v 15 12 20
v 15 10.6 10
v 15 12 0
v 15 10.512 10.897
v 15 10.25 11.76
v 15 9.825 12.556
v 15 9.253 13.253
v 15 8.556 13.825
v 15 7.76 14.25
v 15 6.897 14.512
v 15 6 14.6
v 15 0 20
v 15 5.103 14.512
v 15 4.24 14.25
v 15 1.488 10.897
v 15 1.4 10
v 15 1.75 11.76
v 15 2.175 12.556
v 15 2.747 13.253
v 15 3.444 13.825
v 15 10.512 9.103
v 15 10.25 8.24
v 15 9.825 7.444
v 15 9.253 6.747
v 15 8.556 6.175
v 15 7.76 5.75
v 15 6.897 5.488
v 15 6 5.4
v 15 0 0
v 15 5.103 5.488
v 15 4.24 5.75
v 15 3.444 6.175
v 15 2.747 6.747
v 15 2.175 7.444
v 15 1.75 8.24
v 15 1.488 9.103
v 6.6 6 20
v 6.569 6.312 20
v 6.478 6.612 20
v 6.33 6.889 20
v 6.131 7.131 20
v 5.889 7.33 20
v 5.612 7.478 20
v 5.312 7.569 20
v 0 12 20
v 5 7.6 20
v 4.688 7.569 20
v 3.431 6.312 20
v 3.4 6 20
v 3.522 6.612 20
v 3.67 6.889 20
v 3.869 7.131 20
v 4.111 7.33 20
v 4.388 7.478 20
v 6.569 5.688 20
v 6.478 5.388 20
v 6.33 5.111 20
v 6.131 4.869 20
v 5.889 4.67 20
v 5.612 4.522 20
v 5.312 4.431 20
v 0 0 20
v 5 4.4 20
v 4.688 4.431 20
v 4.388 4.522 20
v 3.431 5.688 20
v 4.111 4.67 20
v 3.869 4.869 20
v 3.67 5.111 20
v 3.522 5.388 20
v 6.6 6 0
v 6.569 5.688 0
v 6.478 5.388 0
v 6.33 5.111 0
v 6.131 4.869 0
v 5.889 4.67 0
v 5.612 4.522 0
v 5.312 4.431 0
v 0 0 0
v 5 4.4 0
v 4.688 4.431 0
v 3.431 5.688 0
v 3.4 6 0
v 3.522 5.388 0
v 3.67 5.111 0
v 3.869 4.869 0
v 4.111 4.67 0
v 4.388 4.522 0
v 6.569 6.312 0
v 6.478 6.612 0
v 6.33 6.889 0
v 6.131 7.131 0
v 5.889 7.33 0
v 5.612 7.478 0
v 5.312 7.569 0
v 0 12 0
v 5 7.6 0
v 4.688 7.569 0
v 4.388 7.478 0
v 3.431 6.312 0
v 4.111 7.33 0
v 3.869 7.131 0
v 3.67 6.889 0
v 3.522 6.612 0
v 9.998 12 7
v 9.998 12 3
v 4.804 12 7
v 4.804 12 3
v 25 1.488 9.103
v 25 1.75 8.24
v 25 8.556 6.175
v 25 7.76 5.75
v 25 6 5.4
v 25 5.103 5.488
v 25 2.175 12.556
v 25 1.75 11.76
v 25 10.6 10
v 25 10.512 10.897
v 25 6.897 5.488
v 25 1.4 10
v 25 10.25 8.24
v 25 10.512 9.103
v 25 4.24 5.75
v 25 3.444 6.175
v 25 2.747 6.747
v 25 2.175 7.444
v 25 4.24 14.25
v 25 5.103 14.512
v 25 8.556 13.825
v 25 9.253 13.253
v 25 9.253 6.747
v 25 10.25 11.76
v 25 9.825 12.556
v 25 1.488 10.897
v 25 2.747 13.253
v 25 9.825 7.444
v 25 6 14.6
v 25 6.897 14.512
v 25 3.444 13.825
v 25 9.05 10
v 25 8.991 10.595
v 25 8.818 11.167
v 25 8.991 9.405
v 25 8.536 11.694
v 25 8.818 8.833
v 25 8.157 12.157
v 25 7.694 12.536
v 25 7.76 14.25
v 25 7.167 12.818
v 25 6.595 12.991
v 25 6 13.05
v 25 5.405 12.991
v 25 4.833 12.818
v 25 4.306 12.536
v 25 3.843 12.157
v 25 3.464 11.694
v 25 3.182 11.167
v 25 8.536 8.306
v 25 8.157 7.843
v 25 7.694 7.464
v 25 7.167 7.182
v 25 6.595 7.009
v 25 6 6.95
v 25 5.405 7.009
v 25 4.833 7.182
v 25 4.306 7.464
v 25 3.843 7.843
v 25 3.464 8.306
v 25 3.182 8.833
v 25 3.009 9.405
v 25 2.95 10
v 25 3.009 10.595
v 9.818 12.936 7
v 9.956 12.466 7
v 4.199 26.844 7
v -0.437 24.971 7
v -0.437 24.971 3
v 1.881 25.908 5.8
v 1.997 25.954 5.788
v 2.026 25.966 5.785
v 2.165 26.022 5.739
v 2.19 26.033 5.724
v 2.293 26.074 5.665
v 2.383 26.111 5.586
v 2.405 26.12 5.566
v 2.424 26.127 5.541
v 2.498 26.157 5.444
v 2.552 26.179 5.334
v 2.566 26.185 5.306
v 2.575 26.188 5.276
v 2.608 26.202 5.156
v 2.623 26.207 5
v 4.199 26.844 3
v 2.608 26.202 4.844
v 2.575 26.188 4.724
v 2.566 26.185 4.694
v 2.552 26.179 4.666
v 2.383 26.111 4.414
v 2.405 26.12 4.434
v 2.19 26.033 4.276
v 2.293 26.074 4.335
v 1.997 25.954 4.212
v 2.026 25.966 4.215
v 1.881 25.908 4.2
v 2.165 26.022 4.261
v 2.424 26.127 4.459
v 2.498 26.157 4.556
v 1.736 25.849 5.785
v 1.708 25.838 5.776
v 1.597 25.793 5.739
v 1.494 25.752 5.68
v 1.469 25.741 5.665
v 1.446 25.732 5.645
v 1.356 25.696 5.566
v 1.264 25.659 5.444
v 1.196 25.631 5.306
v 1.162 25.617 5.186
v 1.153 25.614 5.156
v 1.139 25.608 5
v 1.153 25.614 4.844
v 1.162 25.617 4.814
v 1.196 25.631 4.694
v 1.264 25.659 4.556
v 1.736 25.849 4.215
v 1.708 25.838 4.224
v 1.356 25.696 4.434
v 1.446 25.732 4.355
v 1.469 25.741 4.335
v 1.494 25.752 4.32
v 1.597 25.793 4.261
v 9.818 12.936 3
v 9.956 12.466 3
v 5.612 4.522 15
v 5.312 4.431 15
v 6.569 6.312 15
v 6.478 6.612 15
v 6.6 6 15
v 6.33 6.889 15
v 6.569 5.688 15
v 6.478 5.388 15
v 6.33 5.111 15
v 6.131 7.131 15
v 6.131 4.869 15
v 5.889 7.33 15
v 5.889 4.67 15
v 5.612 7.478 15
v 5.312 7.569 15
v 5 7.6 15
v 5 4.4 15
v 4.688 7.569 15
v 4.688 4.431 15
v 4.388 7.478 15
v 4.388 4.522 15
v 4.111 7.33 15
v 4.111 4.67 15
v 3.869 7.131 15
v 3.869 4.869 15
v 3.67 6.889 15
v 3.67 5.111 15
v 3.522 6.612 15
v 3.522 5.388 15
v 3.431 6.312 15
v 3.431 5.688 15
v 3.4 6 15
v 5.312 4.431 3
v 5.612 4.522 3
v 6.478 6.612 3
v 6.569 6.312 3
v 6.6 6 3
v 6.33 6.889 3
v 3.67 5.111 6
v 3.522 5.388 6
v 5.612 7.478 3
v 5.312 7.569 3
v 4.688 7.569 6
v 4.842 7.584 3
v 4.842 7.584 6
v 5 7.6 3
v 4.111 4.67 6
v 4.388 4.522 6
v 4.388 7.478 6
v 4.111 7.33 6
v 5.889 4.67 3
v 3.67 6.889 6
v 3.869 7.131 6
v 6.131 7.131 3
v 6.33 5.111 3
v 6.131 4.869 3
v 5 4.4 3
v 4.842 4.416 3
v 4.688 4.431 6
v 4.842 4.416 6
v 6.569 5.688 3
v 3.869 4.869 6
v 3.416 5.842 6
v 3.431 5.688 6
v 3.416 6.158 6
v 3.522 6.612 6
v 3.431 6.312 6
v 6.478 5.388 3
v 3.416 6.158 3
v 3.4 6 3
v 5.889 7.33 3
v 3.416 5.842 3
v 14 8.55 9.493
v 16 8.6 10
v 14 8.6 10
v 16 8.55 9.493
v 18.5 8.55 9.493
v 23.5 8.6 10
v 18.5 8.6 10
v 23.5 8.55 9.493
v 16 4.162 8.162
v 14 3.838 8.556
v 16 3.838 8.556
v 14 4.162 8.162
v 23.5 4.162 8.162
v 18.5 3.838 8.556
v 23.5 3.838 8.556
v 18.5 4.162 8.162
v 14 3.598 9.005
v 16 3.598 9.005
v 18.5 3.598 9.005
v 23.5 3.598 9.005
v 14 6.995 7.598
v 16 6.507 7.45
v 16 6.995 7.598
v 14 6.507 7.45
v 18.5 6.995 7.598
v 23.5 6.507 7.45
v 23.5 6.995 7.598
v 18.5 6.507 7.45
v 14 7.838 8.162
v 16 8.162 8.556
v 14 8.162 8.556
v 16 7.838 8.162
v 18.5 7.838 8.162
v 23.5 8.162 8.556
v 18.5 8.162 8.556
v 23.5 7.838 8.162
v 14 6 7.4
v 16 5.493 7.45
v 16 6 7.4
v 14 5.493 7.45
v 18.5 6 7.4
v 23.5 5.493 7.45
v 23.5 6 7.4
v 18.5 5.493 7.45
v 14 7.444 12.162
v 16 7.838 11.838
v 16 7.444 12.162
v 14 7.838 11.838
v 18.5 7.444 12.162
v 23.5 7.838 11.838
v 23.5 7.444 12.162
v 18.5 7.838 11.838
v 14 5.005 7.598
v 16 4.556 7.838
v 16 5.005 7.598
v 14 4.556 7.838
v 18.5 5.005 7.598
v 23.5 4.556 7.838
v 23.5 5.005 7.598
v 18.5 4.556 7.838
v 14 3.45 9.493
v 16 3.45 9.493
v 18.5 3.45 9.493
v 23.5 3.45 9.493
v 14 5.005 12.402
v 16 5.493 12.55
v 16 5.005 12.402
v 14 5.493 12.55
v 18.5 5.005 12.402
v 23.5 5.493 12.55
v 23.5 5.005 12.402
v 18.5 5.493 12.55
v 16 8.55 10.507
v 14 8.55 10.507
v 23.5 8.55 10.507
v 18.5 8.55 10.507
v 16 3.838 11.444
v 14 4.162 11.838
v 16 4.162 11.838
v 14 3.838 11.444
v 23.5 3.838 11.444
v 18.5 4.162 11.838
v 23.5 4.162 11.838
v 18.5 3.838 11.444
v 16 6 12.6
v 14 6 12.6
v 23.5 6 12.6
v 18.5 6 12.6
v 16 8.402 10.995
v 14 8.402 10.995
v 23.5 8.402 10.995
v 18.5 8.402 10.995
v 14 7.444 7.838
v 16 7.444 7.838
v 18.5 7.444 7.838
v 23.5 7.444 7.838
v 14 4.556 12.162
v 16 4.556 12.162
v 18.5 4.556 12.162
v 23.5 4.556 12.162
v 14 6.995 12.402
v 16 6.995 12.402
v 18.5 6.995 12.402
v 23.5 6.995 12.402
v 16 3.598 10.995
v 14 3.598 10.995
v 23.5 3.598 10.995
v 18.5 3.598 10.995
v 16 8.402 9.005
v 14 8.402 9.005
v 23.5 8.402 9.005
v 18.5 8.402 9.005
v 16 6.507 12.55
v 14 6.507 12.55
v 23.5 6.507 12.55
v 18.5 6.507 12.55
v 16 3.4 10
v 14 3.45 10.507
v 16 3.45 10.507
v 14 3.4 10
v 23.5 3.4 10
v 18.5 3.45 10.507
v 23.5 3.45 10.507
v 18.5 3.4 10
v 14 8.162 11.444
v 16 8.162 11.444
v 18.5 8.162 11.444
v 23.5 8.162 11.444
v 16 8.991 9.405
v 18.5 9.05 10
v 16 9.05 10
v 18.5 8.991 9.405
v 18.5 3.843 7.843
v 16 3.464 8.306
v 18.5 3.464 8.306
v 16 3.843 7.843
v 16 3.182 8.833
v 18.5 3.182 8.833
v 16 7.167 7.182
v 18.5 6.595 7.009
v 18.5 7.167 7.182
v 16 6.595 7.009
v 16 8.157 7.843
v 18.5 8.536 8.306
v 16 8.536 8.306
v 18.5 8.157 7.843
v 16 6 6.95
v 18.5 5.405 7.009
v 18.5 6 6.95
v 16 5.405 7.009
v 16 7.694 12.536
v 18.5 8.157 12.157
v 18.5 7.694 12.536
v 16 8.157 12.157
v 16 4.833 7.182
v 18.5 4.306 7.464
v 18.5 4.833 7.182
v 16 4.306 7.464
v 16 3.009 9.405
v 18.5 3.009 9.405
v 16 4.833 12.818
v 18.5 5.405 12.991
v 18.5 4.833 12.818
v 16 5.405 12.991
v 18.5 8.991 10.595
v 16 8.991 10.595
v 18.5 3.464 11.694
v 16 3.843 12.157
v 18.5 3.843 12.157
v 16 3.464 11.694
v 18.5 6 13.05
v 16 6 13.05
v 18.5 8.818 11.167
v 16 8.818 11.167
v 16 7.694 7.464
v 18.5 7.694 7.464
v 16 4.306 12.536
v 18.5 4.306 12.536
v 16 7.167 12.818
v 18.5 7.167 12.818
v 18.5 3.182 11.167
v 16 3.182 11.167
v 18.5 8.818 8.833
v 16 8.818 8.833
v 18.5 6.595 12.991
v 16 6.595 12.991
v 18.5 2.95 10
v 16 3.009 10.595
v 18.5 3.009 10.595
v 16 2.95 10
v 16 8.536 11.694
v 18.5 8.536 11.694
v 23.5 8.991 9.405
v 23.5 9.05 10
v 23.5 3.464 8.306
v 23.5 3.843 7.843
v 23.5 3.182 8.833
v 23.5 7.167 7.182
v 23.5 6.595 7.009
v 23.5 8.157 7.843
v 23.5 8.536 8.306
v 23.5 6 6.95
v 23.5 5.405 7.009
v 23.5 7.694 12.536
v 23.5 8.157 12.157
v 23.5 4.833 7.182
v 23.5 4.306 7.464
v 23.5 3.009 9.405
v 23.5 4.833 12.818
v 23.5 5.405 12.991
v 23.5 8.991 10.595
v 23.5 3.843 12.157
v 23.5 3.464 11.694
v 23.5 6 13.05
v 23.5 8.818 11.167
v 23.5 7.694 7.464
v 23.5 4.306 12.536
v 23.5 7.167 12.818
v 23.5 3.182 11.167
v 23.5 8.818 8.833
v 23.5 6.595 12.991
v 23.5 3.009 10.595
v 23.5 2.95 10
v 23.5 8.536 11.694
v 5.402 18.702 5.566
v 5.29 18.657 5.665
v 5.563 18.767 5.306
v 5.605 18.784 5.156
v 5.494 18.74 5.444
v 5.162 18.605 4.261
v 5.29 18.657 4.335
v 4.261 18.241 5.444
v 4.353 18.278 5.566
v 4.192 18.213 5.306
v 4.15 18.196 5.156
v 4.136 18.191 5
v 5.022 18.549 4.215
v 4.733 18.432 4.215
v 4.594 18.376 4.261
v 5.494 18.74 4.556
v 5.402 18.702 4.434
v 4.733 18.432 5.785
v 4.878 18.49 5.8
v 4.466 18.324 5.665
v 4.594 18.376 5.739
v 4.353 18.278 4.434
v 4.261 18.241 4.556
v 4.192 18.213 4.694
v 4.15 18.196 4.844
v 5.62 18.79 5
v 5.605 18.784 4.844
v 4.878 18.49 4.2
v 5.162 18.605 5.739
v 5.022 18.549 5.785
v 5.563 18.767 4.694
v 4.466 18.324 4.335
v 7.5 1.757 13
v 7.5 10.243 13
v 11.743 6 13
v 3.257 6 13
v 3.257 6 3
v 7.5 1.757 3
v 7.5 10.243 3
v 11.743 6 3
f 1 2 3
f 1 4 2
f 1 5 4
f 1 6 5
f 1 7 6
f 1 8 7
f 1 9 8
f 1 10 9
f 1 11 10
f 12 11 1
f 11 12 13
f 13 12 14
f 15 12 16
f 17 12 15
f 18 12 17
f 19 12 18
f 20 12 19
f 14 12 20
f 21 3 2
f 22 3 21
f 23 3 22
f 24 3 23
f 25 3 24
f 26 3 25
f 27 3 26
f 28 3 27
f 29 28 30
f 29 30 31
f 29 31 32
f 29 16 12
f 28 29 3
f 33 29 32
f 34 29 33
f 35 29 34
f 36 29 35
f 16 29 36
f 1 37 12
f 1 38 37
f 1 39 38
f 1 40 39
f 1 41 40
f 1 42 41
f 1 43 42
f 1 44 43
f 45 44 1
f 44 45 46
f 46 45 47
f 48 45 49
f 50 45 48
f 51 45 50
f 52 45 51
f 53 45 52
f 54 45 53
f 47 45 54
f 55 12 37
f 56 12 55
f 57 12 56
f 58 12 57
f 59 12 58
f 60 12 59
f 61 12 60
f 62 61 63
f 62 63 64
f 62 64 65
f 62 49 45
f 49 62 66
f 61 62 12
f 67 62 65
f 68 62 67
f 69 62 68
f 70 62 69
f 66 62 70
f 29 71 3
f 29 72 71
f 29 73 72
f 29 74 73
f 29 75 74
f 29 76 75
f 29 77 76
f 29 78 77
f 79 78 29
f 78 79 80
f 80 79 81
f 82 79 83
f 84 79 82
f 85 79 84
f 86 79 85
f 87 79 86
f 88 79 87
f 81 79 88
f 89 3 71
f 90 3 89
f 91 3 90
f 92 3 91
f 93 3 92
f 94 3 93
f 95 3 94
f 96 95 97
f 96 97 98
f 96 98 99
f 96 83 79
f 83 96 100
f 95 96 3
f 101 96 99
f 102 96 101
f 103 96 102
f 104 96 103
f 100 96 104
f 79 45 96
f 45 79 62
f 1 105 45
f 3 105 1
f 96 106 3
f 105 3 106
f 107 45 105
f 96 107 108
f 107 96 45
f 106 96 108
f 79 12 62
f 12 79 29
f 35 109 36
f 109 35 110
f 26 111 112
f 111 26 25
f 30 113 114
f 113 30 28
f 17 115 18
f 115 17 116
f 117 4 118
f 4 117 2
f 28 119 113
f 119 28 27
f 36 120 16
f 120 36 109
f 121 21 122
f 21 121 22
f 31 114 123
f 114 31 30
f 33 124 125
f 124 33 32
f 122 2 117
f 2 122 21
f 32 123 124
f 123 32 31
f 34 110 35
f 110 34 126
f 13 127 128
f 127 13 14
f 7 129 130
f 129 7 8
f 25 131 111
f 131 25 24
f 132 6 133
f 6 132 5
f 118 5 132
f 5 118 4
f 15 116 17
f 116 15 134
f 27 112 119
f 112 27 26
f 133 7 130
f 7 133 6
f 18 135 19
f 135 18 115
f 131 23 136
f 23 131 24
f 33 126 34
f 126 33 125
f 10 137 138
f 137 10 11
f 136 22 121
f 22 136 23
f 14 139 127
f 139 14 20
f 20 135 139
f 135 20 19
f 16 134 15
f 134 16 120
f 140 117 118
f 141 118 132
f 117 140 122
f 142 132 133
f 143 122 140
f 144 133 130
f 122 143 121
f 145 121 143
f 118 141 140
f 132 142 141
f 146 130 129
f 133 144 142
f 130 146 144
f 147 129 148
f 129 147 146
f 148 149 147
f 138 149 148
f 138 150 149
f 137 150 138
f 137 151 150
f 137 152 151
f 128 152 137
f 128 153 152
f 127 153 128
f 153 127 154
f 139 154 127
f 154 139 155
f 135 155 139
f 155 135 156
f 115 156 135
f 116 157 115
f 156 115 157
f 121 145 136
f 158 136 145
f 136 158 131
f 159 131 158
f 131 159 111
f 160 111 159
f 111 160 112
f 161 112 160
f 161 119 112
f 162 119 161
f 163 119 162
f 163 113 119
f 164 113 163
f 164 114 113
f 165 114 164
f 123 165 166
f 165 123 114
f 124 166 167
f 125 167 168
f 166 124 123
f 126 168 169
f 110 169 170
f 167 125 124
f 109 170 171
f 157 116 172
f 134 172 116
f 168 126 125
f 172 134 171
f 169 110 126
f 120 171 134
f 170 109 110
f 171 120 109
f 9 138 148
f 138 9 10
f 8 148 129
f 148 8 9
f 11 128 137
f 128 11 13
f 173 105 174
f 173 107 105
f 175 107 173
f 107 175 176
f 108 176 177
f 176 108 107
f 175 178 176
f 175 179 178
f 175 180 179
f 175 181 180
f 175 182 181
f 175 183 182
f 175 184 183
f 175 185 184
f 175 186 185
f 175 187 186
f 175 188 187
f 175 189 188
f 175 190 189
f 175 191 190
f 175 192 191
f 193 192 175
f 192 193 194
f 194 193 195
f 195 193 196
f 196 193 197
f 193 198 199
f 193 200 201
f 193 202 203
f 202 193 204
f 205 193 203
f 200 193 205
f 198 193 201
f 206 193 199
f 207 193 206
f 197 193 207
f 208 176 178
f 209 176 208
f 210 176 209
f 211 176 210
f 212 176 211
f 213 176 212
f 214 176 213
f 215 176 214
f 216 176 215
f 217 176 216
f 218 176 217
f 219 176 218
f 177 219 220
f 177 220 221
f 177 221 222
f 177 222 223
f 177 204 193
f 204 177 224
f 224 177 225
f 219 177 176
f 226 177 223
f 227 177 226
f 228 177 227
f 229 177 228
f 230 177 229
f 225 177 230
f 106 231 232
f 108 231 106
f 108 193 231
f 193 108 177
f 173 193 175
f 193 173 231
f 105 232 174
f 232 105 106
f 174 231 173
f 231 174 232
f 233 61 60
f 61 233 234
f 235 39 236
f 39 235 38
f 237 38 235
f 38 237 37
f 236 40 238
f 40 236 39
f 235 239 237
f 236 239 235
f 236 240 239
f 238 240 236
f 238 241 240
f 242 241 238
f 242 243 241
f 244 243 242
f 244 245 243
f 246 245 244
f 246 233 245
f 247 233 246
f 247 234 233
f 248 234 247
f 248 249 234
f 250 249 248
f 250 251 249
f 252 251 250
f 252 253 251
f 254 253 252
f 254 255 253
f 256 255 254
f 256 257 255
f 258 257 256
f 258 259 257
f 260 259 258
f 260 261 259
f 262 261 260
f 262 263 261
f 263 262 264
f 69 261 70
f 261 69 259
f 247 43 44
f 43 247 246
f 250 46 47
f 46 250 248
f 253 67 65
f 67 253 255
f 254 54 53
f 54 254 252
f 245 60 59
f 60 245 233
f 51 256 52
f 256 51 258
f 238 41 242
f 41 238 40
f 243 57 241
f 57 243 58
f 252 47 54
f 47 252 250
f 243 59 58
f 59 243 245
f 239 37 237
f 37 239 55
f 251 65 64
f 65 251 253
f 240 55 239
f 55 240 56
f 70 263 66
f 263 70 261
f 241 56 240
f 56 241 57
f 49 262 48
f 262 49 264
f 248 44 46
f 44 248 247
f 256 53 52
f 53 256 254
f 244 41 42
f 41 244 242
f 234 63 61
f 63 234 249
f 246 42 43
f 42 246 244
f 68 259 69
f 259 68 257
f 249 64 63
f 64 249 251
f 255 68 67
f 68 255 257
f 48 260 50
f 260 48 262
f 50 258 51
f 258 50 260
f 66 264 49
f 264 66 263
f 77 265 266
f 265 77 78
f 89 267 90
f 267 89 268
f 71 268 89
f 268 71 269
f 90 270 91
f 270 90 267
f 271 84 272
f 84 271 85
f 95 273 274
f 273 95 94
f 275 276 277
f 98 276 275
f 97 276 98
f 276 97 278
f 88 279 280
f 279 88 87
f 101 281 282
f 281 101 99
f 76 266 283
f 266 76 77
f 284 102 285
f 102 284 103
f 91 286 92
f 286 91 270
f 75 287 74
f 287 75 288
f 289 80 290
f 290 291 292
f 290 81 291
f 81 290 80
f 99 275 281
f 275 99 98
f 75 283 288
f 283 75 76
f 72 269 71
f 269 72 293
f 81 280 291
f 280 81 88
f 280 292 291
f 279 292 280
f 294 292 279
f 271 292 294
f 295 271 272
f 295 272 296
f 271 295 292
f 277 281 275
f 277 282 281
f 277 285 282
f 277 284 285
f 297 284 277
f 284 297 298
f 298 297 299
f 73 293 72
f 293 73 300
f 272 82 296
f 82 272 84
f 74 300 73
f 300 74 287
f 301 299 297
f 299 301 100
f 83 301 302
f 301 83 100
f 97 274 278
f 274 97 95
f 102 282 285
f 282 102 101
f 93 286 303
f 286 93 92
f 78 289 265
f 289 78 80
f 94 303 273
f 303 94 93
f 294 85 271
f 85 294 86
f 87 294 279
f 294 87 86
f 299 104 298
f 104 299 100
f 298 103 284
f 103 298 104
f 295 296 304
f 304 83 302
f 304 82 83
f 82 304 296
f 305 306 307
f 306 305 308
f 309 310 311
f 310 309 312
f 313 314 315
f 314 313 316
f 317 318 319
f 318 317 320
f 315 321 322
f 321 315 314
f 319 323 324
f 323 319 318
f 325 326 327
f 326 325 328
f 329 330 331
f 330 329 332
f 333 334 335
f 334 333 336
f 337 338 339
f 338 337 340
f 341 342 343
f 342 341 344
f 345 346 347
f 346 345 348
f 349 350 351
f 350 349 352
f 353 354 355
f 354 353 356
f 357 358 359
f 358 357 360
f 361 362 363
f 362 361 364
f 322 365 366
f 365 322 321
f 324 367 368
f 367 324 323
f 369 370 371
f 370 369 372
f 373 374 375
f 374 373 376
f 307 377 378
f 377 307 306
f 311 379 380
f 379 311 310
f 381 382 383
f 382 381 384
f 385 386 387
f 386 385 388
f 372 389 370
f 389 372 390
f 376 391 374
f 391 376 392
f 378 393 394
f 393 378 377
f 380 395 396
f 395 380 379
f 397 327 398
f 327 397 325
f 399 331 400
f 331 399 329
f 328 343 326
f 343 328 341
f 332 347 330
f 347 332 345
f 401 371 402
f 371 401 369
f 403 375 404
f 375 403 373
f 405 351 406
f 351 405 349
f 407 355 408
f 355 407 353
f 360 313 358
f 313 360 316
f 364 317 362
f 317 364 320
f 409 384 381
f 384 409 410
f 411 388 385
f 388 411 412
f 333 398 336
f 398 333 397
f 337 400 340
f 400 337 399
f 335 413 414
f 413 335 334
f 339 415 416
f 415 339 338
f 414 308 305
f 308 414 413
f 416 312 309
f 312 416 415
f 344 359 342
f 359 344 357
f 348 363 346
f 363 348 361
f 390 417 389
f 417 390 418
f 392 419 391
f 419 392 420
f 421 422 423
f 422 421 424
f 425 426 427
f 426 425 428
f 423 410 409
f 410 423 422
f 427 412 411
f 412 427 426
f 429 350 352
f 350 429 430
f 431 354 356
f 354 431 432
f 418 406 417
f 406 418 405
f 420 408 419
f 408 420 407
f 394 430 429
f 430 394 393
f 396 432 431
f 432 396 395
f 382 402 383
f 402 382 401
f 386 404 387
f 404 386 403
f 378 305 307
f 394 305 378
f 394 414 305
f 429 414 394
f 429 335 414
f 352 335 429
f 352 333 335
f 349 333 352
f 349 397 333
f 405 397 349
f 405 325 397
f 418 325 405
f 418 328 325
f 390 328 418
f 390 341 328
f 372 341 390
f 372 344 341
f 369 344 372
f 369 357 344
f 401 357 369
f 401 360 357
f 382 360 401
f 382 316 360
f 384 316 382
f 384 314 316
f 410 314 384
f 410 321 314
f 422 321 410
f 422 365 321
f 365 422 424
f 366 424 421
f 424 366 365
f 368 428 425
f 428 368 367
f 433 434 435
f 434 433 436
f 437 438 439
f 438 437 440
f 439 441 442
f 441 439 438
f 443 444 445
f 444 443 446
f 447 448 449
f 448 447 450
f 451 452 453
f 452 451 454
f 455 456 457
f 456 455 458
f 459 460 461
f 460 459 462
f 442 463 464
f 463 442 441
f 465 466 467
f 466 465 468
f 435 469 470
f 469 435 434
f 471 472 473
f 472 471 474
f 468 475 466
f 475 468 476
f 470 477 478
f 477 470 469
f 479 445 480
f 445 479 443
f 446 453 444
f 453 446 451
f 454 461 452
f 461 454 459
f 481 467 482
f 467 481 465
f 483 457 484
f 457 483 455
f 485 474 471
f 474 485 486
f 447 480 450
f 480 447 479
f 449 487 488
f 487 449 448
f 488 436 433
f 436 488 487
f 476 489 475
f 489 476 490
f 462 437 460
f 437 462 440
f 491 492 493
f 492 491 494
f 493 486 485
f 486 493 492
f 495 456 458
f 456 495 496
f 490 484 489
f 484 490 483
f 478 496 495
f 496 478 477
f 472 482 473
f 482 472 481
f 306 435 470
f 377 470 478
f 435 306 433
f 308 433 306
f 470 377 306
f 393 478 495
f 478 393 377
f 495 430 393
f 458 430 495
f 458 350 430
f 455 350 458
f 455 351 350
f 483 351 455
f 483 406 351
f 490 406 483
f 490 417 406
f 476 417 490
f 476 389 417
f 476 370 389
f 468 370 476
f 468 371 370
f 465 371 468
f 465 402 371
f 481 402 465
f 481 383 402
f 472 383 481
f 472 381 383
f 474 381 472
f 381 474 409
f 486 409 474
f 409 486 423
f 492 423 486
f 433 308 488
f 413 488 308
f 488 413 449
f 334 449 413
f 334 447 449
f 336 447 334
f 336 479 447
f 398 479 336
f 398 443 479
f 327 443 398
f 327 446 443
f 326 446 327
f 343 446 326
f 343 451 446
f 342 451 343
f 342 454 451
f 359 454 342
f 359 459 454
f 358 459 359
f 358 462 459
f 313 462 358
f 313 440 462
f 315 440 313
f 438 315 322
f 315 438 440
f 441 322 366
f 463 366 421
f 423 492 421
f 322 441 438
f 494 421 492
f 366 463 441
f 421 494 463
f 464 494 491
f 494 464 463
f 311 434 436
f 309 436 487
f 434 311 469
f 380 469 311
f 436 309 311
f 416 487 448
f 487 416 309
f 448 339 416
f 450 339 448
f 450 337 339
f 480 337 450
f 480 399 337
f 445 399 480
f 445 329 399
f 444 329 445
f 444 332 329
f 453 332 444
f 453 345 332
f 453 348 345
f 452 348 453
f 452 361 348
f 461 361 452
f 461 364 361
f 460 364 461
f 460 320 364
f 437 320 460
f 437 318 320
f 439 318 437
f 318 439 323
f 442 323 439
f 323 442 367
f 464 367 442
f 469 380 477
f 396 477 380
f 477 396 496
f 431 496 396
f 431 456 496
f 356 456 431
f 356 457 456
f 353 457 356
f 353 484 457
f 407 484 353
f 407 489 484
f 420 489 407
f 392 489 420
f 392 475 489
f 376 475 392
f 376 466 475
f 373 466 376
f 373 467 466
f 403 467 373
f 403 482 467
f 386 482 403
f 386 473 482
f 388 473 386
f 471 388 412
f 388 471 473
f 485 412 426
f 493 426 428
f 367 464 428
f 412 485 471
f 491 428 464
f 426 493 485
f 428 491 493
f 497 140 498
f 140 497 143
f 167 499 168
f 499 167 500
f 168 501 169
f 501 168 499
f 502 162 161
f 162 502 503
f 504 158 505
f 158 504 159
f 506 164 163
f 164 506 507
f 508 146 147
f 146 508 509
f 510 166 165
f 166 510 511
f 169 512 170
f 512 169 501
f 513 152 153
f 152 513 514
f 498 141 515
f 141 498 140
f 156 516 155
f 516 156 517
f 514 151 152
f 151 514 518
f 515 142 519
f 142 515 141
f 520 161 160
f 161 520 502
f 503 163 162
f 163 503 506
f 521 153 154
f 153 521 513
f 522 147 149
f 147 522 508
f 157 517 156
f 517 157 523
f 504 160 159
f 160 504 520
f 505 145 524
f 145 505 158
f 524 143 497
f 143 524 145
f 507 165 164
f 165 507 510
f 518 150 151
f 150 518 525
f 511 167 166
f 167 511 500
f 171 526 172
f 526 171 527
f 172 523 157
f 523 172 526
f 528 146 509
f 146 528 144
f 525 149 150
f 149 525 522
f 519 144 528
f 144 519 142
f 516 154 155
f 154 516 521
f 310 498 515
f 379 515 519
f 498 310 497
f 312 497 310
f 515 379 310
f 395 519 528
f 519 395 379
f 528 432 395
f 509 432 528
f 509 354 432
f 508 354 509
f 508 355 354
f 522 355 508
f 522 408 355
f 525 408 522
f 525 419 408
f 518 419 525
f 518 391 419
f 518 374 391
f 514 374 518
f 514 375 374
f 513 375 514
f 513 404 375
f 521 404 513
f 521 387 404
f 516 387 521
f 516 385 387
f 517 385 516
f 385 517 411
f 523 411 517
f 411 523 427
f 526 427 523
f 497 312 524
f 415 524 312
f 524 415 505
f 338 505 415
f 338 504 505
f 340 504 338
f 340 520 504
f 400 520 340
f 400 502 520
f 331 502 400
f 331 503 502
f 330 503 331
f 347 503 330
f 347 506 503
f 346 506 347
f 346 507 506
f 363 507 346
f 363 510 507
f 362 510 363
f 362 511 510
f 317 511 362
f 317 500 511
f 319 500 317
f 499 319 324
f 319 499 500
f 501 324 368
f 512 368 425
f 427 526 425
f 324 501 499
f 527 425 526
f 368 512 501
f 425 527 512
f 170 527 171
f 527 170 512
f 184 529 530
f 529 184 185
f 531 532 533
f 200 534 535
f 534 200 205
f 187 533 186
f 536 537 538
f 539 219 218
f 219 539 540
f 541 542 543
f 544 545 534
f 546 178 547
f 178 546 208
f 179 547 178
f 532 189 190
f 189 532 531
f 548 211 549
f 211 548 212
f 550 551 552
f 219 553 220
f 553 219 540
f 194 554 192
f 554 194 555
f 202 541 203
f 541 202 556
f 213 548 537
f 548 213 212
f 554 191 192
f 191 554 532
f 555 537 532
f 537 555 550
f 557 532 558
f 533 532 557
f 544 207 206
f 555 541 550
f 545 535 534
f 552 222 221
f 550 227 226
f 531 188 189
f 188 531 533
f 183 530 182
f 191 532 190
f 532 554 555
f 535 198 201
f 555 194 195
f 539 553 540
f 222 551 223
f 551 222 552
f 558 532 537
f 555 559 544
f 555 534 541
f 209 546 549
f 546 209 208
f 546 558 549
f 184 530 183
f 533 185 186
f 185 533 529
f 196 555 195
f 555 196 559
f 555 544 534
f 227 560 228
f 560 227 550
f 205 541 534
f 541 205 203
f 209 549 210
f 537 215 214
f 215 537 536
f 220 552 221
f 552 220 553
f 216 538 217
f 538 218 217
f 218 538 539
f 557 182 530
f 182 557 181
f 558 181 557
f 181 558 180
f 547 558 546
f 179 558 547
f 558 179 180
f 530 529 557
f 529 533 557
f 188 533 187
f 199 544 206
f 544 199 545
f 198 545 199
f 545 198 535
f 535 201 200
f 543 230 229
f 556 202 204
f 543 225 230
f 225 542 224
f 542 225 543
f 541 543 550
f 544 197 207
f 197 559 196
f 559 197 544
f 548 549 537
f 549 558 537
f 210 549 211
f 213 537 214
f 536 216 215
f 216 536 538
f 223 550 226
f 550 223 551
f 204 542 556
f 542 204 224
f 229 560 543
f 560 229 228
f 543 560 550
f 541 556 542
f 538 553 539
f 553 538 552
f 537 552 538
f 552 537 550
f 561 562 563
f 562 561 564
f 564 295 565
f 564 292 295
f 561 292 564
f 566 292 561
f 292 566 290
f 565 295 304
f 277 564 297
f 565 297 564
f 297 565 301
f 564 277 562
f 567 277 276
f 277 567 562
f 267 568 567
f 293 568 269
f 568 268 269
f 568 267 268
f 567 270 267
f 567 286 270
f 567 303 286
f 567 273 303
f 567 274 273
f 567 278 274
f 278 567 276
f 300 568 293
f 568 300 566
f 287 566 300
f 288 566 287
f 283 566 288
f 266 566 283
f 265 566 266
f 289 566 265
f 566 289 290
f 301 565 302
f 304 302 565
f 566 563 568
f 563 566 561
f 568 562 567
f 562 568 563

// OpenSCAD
// ============================================
// ESP32 Rover - Steering Knuckle
// ============================================
// Design Specification v1.0
//
// Front steering knuckle with Ackerman geometry.
// Print 2× (mirror for left/right)
// ============================================

// Dimensions
knuckle_height = 20;
knuckle_width = 15;
knuckle_depth = 12;

// Kingpin
kingpin_dia = 3.2;  // M3 clearance
kingpin_offset_x = 5;

// Wheel hub
hub_dia = 5.2;  // 5mm axle clearance
hub_length = 10;

// Steering arm
arm_length = 15;
arm_width = 5;
arm_thickness = 4;
arm_angle = 22;  // Ackerman angle (degrees inward)
pushrod_hole = 1.6;  // For 1.5mm wire

// Resolution
$fn = 32;

module steering_knuckle(mirror = false) {
    mirror_factor = mirror ? -1 : 1;

    difference() {
        union() {
            // Main body
            cube([knuckle_width, knuckle_depth, knuckle_height]);

            // Wheel hub boss
            translate([knuckle_width, knuckle_depth / 2, knuckle_height / 2])
                rotate([0, 90, 0])
                    cylinder(d = hub_dia + 4, h = hub_length);

            // Steering arm
            translate([knuckle_width / 2, knuckle_depth, 3])
                rotate([0, 0, mirror_factor * arm_angle])
                    translate([-arm_width / 2, 0, 0])
                        cube([arm_width, arm_length, arm_thickness]);

            // Steering arm reinforcement
            translate([knuckle_width / 2, knuckle_depth, 3])
                rotate([0, 0, mirror_factor * arm_angle])
                    translate([0, 0, 0])
                        cylinder(d = arm_width, h = arm_thickness);
        }

        // Kingpin bore (top)
        translate([kingpin_offset_x, knuckle_depth / 2, knuckle_height - 5])
            cylinder(d = kingpin_dia, h = 10);

        // Kingpin bore (bottom)
        translate([kingpin_offset_x, knuckle_depth / 2, -1])
            cylinder(d = kingpin_dia, h = 7);

        // Wheel hub bore
        translate([knuckle_width - 1, knuckle_depth / 2, knuckle_height / 2])
            rotate([0, 90, 0])
                cylinder(d = hub_dia, h = hub_length + 2);

        // Bearing seats (optional - for 3x6x2 bearings)
        translate([knuckle_width + 1, knuckle_depth / 2, knuckle_height / 2])
            rotate([0, 90, 0])
                cylinder(d = 6.1, h = 2.5);
        translate([knuckle_width + hub_length - 1.5, knuckle_depth / 2, knuckle_height / 2])
            rotate([0, 90, 0])
                cylinder(d = 6.1, h = 2.5);

        // Push rod hole
        translate([knuckle_width / 2, knuckle_depth, 3 + arm_thickness / 2])
            rotate([0, 0, mirror_factor * arm_angle])
                translate([0, arm_length - 3, 0])
                    rotate([90, 0, 0])
                        cylinder(d = pushrod_hole, h = 10, center = true);

        // Weight reduction
        translate([knuckle_width / 2, knuckle_depth / 2, 8])
            rotate([0, 0, 45])
                cube([6, 6, 10], center = true);
    }
}

// Render right knuckle
steering_knuckle(mirror = false);

// Uncomment to render left knuckle
// translate([30, 0, 0]) steering_knuckle(mirror = true);
